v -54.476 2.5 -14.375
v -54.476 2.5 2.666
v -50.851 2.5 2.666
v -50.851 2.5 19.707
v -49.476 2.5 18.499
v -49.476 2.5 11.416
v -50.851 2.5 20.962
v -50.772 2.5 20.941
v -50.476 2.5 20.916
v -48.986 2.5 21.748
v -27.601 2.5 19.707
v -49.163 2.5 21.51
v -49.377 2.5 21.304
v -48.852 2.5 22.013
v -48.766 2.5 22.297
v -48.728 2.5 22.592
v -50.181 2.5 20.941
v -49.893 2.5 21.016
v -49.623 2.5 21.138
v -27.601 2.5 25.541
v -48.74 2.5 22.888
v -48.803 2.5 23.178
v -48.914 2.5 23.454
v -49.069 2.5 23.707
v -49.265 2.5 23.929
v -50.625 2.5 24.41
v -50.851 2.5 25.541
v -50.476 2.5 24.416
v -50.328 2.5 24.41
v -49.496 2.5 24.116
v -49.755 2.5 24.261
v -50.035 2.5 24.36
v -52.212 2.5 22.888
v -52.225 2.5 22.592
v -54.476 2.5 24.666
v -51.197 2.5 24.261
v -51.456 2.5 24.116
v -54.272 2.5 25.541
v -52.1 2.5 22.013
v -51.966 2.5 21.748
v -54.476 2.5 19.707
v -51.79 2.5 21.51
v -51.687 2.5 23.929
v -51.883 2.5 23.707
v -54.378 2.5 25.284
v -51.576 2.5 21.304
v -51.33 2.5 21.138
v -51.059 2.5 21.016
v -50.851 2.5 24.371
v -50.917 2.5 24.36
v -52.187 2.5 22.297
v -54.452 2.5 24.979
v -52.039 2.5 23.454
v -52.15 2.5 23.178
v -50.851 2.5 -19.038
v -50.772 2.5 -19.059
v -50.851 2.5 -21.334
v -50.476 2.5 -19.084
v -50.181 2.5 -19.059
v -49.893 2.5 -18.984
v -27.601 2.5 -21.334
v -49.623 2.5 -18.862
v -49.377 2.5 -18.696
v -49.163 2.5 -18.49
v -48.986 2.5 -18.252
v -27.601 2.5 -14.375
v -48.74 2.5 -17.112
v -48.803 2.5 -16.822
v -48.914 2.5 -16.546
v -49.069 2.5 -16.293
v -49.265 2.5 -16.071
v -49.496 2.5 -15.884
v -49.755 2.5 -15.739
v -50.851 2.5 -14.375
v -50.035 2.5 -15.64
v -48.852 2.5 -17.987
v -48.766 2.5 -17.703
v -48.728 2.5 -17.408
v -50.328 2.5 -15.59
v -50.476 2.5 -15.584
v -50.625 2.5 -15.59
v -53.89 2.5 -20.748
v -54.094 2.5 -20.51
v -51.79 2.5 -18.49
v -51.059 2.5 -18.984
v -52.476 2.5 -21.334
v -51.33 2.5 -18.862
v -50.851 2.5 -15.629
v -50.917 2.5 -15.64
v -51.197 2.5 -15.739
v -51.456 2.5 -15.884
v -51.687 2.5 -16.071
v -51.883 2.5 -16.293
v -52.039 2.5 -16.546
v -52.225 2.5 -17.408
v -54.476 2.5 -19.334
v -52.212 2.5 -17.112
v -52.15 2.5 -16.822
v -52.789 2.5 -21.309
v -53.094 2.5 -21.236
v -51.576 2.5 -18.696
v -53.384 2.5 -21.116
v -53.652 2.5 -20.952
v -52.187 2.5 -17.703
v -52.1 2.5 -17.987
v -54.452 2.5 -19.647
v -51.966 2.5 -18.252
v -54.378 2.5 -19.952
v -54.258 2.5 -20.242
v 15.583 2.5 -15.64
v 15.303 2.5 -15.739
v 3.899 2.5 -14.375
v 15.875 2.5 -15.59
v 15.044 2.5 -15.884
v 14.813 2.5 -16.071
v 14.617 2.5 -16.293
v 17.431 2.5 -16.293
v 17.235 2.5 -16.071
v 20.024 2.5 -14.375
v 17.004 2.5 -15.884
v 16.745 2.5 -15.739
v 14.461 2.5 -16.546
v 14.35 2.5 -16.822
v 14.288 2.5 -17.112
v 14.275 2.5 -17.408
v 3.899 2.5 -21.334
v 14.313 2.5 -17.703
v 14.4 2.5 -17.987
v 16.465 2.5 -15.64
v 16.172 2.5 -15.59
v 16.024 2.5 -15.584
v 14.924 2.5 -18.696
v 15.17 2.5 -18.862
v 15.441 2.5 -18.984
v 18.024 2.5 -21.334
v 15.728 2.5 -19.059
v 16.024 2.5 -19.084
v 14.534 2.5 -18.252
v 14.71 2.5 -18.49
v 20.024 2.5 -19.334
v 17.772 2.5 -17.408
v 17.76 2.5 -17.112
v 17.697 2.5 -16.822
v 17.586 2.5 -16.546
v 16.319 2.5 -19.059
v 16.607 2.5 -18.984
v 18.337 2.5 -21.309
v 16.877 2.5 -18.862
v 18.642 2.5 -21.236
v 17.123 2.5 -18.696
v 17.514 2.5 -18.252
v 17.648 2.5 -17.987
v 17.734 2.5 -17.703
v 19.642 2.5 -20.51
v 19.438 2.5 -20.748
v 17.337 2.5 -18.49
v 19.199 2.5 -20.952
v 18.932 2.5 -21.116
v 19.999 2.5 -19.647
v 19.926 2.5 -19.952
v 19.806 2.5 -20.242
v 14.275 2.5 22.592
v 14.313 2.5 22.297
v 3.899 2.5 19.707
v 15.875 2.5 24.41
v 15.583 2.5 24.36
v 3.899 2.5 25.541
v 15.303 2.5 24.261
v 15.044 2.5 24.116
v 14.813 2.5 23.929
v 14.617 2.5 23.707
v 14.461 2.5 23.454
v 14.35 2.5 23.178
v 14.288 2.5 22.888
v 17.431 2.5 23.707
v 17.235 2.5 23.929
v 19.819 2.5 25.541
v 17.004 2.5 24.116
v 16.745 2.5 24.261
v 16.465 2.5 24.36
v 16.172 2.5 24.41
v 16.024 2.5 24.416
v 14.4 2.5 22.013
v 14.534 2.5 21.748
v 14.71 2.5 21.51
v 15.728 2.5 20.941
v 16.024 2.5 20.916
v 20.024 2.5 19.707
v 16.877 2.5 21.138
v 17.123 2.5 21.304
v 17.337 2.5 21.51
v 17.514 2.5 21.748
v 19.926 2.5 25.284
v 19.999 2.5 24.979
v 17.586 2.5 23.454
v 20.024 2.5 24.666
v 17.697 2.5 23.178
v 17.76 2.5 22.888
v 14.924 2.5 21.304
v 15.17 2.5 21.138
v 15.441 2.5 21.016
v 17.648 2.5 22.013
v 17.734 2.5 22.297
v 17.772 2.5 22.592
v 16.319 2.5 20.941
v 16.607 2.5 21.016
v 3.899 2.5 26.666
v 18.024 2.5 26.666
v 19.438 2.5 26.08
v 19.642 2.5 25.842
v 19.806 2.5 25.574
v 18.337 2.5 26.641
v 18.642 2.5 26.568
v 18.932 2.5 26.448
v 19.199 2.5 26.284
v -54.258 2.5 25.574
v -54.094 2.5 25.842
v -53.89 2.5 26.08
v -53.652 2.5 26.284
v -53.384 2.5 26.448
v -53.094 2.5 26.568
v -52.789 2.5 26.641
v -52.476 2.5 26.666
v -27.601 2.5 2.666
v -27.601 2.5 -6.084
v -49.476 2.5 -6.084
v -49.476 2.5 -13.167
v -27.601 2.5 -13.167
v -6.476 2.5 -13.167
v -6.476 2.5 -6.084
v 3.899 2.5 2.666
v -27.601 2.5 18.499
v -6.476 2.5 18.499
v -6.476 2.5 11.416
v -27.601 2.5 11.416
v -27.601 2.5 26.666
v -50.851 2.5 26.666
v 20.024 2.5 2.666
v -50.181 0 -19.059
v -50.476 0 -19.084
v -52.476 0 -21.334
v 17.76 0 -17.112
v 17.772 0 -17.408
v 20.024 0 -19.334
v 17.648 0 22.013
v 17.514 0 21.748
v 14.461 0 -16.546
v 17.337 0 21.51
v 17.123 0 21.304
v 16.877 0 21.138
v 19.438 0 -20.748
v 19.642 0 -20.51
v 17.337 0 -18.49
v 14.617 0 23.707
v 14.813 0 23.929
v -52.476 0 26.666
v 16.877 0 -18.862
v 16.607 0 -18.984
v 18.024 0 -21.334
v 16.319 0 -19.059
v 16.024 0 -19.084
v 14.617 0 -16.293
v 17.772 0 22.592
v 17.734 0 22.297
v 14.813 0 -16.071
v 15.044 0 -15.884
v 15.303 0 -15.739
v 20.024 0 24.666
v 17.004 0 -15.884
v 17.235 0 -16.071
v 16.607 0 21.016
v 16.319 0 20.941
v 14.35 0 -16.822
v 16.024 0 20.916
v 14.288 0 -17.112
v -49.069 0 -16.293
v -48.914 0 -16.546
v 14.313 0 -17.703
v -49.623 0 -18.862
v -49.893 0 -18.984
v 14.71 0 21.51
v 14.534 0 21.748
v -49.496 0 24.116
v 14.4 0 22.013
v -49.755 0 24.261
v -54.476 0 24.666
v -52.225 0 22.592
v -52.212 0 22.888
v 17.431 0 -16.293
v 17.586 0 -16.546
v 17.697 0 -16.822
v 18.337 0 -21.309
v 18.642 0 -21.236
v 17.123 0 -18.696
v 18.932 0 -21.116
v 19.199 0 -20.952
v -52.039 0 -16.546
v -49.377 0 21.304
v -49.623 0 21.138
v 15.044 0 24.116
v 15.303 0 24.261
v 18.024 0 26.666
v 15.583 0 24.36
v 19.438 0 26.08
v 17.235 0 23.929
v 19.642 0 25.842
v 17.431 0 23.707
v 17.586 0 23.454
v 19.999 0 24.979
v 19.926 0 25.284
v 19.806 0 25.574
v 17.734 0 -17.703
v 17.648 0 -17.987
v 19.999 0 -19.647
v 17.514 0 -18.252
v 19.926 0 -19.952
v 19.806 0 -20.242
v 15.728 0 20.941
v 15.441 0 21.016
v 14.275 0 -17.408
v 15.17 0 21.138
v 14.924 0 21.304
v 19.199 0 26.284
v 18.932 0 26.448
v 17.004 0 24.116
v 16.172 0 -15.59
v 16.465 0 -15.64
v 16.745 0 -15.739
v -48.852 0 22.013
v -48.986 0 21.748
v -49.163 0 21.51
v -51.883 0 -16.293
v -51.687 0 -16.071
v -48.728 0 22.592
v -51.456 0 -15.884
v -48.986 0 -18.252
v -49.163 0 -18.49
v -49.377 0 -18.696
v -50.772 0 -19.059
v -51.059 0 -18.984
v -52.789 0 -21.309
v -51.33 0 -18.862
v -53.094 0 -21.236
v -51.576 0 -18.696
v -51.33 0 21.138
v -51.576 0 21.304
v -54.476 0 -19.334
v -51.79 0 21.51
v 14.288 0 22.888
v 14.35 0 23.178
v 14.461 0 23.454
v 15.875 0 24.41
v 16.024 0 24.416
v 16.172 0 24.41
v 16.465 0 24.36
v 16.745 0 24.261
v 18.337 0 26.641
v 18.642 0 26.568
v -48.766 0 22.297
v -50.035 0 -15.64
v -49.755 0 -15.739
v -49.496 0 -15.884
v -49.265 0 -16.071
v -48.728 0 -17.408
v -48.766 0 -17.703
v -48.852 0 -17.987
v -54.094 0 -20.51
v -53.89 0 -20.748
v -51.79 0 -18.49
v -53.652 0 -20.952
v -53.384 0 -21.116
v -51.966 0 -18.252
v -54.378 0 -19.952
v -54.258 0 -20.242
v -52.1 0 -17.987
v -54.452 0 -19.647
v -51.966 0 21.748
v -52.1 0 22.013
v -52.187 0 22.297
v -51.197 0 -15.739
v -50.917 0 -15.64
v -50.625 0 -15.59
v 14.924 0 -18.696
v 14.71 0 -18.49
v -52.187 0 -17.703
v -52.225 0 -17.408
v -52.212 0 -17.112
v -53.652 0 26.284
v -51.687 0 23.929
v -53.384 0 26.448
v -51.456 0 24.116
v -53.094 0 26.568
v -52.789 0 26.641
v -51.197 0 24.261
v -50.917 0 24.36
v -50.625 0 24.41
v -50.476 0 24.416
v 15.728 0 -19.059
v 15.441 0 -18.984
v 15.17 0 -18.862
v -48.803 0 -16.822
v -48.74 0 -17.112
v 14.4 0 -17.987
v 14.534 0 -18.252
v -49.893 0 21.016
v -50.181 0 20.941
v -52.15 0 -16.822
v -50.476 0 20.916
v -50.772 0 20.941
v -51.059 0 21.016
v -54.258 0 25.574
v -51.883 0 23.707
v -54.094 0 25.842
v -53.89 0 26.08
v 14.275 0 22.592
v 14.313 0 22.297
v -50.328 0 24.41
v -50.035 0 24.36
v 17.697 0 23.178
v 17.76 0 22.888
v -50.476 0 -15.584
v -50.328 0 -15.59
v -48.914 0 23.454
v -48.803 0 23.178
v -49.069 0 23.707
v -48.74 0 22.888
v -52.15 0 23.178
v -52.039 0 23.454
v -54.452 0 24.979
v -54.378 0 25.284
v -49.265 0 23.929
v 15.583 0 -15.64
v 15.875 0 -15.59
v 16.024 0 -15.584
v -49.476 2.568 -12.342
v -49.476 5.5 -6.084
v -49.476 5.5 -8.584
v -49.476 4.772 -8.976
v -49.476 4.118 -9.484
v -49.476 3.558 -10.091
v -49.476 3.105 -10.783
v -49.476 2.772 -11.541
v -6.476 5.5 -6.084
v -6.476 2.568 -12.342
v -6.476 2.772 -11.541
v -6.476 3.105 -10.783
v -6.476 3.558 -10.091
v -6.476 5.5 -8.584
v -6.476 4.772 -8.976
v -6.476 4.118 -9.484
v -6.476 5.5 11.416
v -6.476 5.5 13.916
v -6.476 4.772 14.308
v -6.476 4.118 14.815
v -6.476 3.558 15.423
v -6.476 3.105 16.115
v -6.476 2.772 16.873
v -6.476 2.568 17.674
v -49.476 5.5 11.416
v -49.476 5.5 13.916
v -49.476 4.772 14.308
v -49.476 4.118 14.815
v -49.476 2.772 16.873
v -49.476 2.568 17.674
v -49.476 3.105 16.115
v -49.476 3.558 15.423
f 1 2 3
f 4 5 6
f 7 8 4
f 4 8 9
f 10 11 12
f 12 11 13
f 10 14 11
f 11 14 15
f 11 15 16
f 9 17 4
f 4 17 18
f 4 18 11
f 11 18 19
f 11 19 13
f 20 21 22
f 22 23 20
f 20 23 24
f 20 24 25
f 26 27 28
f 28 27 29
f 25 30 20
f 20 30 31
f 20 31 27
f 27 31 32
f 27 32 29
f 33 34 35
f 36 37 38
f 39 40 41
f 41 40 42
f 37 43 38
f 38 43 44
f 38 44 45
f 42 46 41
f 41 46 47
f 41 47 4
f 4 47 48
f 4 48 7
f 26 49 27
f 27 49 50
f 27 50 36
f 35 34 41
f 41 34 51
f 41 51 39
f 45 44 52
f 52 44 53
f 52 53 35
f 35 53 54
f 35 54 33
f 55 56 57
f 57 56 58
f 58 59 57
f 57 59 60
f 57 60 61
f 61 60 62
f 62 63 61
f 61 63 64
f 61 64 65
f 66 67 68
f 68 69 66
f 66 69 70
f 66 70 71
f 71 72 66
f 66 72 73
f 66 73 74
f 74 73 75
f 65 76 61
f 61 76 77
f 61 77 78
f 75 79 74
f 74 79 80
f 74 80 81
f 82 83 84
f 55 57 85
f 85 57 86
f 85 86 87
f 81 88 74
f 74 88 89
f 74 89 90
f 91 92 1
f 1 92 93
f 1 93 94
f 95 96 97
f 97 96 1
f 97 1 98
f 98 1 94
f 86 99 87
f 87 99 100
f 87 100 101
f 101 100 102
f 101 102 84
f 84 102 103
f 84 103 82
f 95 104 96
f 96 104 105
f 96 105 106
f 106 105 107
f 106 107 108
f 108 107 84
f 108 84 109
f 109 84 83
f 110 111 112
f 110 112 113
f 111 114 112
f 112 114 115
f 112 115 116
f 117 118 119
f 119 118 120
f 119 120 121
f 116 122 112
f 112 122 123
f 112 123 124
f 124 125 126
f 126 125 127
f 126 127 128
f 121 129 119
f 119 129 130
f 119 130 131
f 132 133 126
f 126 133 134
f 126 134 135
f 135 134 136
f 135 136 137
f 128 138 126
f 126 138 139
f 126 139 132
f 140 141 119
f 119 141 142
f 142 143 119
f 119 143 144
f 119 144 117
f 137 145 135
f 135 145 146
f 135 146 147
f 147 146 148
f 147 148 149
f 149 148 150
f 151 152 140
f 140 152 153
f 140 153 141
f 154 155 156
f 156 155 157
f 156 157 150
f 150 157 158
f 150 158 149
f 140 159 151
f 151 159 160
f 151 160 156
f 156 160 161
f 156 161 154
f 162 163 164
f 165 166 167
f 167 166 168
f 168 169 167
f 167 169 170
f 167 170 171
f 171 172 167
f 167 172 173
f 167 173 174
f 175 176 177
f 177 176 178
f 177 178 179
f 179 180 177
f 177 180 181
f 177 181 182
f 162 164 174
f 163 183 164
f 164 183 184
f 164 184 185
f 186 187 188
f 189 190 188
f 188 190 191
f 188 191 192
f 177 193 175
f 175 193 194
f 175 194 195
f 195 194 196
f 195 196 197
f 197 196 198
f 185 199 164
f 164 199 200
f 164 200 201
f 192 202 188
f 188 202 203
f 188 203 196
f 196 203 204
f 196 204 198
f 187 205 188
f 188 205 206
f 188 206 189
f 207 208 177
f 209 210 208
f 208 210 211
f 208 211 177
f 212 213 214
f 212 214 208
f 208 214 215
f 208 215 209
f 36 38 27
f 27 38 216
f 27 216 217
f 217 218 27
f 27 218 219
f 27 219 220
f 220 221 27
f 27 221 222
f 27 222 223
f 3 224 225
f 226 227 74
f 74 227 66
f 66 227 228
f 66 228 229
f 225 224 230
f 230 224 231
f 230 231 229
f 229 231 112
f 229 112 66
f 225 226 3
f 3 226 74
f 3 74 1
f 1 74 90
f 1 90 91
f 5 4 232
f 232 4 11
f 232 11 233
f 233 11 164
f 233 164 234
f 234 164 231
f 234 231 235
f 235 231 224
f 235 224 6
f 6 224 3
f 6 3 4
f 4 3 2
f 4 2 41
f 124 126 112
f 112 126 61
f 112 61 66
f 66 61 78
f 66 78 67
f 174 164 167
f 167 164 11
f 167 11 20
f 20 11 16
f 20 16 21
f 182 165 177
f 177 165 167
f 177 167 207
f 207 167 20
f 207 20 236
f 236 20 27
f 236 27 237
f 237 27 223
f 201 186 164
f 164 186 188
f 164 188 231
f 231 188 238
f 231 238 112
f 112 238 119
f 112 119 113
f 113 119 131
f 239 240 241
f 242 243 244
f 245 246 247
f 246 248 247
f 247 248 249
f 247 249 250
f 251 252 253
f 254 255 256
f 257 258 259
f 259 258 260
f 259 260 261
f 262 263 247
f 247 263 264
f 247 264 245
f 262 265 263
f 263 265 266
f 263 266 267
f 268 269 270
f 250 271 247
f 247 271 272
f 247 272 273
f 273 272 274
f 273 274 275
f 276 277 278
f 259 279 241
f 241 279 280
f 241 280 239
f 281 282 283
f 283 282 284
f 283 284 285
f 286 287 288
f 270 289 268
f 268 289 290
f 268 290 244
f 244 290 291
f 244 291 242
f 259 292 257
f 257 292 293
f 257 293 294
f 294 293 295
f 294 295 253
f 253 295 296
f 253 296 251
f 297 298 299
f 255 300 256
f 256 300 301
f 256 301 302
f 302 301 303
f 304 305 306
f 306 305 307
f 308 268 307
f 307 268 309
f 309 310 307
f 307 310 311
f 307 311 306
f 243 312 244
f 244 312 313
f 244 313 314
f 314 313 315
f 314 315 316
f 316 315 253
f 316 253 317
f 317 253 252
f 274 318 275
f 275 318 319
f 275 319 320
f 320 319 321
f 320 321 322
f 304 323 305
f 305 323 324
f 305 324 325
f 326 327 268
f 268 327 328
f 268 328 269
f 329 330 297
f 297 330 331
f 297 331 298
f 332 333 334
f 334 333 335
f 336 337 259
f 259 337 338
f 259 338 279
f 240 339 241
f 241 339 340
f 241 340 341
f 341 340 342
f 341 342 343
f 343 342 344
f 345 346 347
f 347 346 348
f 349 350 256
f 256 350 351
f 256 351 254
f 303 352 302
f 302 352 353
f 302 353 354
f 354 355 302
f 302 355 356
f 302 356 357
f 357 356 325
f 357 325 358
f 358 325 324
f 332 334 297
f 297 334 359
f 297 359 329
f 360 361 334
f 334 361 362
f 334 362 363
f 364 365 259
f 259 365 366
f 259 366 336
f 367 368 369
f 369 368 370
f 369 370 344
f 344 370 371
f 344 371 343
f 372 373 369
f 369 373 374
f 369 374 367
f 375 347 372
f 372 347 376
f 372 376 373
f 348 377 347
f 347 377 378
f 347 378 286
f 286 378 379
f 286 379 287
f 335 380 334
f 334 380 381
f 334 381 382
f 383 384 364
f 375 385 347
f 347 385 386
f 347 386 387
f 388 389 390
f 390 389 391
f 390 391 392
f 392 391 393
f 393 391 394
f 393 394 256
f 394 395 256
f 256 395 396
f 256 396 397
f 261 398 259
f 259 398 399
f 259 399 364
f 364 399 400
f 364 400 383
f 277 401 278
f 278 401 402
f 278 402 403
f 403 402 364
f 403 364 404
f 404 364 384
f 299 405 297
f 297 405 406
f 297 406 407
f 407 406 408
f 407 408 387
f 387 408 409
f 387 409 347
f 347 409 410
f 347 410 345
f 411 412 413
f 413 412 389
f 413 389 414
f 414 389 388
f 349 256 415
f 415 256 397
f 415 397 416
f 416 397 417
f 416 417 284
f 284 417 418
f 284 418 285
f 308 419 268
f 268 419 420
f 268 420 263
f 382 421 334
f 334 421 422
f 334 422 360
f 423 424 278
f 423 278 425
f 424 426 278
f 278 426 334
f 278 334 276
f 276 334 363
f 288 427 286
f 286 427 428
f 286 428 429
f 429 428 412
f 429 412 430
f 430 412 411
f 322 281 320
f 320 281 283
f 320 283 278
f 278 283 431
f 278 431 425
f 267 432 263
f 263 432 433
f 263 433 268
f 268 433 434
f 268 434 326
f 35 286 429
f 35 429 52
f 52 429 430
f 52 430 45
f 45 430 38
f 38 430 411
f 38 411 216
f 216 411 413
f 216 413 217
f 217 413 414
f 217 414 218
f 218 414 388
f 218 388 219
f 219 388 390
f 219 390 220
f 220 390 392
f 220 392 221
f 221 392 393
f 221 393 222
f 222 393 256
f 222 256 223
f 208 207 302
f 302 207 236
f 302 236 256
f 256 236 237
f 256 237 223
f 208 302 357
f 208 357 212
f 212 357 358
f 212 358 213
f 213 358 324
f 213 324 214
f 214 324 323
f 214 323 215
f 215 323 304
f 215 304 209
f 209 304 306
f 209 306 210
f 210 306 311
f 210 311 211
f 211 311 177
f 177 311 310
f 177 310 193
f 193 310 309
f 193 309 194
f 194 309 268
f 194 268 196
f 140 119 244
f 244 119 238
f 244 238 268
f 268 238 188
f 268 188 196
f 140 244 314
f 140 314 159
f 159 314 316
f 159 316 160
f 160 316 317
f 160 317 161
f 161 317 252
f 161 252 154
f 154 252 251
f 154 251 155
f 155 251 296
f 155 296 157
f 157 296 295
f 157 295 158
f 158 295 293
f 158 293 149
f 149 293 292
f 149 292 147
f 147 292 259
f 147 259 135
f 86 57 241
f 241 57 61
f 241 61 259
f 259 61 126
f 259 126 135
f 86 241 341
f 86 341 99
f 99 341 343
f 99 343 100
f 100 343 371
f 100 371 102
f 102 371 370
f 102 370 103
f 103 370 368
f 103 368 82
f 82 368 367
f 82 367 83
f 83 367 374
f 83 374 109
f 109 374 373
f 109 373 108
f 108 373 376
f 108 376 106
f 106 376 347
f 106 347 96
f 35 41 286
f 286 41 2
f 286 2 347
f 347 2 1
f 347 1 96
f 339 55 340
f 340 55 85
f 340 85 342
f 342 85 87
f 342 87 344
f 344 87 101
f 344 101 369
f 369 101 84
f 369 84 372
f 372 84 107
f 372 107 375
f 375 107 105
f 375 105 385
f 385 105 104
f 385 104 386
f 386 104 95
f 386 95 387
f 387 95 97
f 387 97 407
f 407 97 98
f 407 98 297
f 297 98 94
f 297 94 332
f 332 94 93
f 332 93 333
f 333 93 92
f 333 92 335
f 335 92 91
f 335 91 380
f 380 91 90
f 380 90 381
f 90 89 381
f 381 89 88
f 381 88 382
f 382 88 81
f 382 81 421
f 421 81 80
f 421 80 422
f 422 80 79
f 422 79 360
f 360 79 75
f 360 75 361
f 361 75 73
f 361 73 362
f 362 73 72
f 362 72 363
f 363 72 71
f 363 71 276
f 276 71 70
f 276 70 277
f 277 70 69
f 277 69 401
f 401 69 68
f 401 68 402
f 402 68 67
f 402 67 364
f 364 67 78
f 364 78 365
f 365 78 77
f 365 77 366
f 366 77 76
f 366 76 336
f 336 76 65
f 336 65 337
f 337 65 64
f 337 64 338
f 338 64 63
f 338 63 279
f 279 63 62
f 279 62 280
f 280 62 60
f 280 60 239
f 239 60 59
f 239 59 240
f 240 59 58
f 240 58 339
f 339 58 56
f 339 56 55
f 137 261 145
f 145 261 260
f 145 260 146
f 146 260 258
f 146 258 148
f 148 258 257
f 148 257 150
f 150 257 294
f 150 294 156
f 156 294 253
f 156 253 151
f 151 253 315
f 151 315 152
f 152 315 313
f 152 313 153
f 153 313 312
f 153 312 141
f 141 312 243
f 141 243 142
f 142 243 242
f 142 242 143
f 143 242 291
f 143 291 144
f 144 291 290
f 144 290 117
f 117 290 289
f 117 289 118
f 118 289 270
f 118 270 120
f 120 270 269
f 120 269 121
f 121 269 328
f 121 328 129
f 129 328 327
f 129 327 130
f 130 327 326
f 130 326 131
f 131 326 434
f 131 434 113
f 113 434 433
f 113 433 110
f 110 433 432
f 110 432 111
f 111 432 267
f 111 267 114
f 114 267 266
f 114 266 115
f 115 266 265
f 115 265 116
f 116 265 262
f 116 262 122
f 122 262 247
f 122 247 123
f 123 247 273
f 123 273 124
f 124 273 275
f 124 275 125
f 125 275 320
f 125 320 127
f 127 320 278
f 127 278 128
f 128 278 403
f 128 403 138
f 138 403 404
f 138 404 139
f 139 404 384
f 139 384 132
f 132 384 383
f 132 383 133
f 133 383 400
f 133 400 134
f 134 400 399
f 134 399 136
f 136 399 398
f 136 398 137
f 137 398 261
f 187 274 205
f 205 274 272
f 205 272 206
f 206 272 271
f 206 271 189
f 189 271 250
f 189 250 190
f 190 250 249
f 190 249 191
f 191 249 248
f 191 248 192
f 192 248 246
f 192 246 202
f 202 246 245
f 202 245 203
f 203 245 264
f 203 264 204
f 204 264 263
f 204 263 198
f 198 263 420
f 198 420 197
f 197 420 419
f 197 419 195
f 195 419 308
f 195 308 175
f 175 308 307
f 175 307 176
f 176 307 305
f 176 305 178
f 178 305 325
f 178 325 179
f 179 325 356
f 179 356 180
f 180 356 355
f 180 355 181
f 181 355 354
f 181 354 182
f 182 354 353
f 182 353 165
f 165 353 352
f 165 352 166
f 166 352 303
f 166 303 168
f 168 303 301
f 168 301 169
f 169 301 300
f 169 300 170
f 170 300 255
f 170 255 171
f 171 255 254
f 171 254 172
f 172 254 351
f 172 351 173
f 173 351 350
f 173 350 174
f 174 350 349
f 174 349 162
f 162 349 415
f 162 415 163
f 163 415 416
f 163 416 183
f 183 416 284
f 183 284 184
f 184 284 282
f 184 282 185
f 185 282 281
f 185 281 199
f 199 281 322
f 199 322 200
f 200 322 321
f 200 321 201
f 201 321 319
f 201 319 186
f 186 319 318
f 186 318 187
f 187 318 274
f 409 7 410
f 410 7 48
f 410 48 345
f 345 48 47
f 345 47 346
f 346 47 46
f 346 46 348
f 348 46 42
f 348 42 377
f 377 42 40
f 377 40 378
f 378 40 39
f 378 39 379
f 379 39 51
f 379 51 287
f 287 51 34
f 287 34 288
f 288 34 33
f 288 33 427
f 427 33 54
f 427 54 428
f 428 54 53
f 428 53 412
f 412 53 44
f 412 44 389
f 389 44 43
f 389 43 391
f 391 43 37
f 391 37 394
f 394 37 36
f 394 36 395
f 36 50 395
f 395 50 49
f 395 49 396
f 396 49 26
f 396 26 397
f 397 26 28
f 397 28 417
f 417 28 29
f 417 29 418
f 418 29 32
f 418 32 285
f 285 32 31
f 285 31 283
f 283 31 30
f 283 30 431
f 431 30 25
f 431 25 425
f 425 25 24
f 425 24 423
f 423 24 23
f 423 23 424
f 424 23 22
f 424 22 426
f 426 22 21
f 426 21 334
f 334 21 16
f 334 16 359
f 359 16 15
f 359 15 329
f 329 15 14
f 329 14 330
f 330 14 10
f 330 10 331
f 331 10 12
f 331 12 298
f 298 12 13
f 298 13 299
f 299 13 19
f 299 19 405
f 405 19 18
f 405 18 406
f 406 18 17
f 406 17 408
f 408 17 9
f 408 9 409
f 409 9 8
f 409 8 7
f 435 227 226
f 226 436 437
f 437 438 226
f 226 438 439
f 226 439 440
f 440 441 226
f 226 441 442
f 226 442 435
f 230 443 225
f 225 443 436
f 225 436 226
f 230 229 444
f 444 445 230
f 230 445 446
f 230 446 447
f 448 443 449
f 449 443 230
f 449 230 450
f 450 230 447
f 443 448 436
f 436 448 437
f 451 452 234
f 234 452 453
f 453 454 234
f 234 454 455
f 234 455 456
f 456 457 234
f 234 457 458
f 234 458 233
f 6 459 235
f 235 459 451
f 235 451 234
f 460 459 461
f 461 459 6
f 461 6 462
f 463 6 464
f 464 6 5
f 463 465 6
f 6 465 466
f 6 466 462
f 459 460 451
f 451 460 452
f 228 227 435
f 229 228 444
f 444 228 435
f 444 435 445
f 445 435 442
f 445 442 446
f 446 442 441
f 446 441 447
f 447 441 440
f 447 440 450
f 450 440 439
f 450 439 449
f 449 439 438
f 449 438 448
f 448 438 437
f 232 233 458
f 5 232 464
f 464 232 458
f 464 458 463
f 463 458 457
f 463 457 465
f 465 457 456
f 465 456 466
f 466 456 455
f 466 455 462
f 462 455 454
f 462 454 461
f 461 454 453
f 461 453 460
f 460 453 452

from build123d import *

# Parameters (mm, degrees)
SKETCH1_R           = 1.75
BOSS_EXTRUDE1_DEPTH = 2.5
SKETCH2_W           = 43
SKETCH2_H           = 2.5
BOSS_EXTRUDE2_DEPTH = 3
FILLET1_R           = 5


with BuildPart() as part:
    # Sketch1 → Boss-Extrude1 (new body)
    with BuildSketch(Plane(origin=(0, 0, 0), x_dir=(1, 0, 0), z_dir=(0, 1, 0))):
        with BuildLine():
            Line((-52.476274799, 21.3340289), (18.023725201, 21.3340289))
            ThreePointArc((18.023725201, 21.3340289), (19.437938764, 20.748242463), (20.023725201, 19.3340289))
            Line((20.023725201, 19.3340289), (20.023725201, -24.6659711))
            ThreePointArc((20.023725201, -24.6659711), (19.437938764, -26.080184662), (18.023725201, -26.6659711))
            Line((18.023725201, -26.6659711), (-52.476274799, -26.6659711))
            ThreePointArc((-52.476274799, -26.6659711), (-53.890488361, -26.080184662), (-54.476274799, -24.6659711))
            Line((-54.476274799, -24.6659711), (-54.476274799, 19.3340289))
            ThreePointArc((-54.476274799, 19.3340289), (-53.890488361, 20.748242463), (-52.476274799, 21.3340289))
        make_face()
        with Locations(Location((-50.476274799, 17.3340289, 0), (0, 0, 270))):
            Circle(SKETCH1_R, mode=Mode.SUBTRACT)
        with Locations(Location((16.023725201, 17.3340289, 0), (0, 0, 270))):
            Circle(SKETCH1_R, mode=Mode.SUBTRACT)
        with Locations(Location((16.023725201, -22.6659711, 0), (0, 0, 270))):
            Circle(SKETCH1_R, mode=Mode.SUBTRACT)
        with Locations(Location((-50.476274799, -22.6659711, 0), (0, 0, 270))):
            Circle(SKETCH1_R, mode=Mode.SUBTRACT)
    extrude(amount=BOSS_EXTRUDE1_DEPTH)

    # Sketch2 → Boss-Extrude2 (add)
    with BuildSketch(Plane(origin=(0, 2.5, 0), x_dir=(1, 0, 0), z_dir=(0, 1, 0))):
        with Locations((-27.976274799, 7.3340289)):
            Rectangle(SKETCH2_W, SKETCH2_H)
        with Locations((-27.976274799, -12.6659711)):
            Rectangle(SKETCH2_W, SKETCH2_H)
    extrude(amount=BOSS_EXTRUDE2_DEPTH)

    # Fillet1
    # the kernel refuses this fillet: 5 mm, written as the material it adds along each edge
    with BuildSketch(Plane(origin=(-49.476274799, 2.5, -8.5840289), x_dir=(0, 0, -1), z_dir=(1, 0, 0)), Plane(origin=(-6.476274799, 2.5, 13.9159711), x_dir=(0, 0, 1), z_dir=(-1, 0, 0))) as fillet1_piece_1:
        with BuildLine():
            CenterArc((4.582575695, 5), FILLET1_R, 203.578178478, 66.421821522)
            Line((0, 3), (-0.091651514, 2.96))
            ThreePointArc((-0.091651514, 2.96), (-0.1, 1.5), (-0.1, 0))
            Line((-0.1, 0), (0, -0.1))
            Line((0, -0.1), (4.582575695, -0.1))
            Line((4.582575695, -0.1), (4.582575695, 0))
        make_face()
    extrude(amount=43)


solid = part.part
